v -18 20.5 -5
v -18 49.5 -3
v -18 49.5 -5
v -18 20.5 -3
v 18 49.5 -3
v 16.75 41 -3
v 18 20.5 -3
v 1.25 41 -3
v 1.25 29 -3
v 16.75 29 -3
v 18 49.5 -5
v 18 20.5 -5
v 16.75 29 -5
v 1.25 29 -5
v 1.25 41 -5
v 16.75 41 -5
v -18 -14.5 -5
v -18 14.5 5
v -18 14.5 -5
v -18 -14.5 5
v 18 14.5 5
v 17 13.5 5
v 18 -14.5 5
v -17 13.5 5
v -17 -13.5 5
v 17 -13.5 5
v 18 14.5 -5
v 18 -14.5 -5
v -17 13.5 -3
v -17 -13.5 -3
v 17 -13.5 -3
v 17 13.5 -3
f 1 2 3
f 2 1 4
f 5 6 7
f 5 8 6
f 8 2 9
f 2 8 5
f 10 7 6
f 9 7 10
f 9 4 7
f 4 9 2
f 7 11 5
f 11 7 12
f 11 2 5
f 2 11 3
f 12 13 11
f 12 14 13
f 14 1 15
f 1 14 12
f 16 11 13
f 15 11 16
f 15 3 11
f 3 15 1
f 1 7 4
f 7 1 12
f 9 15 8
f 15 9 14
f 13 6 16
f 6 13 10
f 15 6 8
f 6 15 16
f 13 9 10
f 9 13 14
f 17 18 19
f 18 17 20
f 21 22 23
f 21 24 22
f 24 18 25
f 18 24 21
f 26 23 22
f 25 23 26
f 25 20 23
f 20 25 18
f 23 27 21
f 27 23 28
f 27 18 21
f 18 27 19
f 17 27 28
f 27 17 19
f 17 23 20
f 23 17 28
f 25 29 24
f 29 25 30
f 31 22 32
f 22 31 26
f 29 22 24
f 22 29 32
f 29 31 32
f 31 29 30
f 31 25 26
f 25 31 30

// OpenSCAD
largura = 27;
profundidade = 34;
altura = 10;
parede = 2;

profDHT = 15.5;
largDHT = 12;


module caixa(){
    difference(){
        cube([profundidade+parede, largura+parede, altura], center=true); //volume externo
        translate([0,0,parede]) cube([profundidade, largura, altura], center=true); //volume real
    }
}

module tampa(){
    difference(){
        cube([profundidade+parede, largura+parede, parede], center=true);
        translate([9,0,0]) cube([profDHT, largDHT, 10], center=true);
        } 
}
translate([0,35,-4]) tampa();

caixa();
